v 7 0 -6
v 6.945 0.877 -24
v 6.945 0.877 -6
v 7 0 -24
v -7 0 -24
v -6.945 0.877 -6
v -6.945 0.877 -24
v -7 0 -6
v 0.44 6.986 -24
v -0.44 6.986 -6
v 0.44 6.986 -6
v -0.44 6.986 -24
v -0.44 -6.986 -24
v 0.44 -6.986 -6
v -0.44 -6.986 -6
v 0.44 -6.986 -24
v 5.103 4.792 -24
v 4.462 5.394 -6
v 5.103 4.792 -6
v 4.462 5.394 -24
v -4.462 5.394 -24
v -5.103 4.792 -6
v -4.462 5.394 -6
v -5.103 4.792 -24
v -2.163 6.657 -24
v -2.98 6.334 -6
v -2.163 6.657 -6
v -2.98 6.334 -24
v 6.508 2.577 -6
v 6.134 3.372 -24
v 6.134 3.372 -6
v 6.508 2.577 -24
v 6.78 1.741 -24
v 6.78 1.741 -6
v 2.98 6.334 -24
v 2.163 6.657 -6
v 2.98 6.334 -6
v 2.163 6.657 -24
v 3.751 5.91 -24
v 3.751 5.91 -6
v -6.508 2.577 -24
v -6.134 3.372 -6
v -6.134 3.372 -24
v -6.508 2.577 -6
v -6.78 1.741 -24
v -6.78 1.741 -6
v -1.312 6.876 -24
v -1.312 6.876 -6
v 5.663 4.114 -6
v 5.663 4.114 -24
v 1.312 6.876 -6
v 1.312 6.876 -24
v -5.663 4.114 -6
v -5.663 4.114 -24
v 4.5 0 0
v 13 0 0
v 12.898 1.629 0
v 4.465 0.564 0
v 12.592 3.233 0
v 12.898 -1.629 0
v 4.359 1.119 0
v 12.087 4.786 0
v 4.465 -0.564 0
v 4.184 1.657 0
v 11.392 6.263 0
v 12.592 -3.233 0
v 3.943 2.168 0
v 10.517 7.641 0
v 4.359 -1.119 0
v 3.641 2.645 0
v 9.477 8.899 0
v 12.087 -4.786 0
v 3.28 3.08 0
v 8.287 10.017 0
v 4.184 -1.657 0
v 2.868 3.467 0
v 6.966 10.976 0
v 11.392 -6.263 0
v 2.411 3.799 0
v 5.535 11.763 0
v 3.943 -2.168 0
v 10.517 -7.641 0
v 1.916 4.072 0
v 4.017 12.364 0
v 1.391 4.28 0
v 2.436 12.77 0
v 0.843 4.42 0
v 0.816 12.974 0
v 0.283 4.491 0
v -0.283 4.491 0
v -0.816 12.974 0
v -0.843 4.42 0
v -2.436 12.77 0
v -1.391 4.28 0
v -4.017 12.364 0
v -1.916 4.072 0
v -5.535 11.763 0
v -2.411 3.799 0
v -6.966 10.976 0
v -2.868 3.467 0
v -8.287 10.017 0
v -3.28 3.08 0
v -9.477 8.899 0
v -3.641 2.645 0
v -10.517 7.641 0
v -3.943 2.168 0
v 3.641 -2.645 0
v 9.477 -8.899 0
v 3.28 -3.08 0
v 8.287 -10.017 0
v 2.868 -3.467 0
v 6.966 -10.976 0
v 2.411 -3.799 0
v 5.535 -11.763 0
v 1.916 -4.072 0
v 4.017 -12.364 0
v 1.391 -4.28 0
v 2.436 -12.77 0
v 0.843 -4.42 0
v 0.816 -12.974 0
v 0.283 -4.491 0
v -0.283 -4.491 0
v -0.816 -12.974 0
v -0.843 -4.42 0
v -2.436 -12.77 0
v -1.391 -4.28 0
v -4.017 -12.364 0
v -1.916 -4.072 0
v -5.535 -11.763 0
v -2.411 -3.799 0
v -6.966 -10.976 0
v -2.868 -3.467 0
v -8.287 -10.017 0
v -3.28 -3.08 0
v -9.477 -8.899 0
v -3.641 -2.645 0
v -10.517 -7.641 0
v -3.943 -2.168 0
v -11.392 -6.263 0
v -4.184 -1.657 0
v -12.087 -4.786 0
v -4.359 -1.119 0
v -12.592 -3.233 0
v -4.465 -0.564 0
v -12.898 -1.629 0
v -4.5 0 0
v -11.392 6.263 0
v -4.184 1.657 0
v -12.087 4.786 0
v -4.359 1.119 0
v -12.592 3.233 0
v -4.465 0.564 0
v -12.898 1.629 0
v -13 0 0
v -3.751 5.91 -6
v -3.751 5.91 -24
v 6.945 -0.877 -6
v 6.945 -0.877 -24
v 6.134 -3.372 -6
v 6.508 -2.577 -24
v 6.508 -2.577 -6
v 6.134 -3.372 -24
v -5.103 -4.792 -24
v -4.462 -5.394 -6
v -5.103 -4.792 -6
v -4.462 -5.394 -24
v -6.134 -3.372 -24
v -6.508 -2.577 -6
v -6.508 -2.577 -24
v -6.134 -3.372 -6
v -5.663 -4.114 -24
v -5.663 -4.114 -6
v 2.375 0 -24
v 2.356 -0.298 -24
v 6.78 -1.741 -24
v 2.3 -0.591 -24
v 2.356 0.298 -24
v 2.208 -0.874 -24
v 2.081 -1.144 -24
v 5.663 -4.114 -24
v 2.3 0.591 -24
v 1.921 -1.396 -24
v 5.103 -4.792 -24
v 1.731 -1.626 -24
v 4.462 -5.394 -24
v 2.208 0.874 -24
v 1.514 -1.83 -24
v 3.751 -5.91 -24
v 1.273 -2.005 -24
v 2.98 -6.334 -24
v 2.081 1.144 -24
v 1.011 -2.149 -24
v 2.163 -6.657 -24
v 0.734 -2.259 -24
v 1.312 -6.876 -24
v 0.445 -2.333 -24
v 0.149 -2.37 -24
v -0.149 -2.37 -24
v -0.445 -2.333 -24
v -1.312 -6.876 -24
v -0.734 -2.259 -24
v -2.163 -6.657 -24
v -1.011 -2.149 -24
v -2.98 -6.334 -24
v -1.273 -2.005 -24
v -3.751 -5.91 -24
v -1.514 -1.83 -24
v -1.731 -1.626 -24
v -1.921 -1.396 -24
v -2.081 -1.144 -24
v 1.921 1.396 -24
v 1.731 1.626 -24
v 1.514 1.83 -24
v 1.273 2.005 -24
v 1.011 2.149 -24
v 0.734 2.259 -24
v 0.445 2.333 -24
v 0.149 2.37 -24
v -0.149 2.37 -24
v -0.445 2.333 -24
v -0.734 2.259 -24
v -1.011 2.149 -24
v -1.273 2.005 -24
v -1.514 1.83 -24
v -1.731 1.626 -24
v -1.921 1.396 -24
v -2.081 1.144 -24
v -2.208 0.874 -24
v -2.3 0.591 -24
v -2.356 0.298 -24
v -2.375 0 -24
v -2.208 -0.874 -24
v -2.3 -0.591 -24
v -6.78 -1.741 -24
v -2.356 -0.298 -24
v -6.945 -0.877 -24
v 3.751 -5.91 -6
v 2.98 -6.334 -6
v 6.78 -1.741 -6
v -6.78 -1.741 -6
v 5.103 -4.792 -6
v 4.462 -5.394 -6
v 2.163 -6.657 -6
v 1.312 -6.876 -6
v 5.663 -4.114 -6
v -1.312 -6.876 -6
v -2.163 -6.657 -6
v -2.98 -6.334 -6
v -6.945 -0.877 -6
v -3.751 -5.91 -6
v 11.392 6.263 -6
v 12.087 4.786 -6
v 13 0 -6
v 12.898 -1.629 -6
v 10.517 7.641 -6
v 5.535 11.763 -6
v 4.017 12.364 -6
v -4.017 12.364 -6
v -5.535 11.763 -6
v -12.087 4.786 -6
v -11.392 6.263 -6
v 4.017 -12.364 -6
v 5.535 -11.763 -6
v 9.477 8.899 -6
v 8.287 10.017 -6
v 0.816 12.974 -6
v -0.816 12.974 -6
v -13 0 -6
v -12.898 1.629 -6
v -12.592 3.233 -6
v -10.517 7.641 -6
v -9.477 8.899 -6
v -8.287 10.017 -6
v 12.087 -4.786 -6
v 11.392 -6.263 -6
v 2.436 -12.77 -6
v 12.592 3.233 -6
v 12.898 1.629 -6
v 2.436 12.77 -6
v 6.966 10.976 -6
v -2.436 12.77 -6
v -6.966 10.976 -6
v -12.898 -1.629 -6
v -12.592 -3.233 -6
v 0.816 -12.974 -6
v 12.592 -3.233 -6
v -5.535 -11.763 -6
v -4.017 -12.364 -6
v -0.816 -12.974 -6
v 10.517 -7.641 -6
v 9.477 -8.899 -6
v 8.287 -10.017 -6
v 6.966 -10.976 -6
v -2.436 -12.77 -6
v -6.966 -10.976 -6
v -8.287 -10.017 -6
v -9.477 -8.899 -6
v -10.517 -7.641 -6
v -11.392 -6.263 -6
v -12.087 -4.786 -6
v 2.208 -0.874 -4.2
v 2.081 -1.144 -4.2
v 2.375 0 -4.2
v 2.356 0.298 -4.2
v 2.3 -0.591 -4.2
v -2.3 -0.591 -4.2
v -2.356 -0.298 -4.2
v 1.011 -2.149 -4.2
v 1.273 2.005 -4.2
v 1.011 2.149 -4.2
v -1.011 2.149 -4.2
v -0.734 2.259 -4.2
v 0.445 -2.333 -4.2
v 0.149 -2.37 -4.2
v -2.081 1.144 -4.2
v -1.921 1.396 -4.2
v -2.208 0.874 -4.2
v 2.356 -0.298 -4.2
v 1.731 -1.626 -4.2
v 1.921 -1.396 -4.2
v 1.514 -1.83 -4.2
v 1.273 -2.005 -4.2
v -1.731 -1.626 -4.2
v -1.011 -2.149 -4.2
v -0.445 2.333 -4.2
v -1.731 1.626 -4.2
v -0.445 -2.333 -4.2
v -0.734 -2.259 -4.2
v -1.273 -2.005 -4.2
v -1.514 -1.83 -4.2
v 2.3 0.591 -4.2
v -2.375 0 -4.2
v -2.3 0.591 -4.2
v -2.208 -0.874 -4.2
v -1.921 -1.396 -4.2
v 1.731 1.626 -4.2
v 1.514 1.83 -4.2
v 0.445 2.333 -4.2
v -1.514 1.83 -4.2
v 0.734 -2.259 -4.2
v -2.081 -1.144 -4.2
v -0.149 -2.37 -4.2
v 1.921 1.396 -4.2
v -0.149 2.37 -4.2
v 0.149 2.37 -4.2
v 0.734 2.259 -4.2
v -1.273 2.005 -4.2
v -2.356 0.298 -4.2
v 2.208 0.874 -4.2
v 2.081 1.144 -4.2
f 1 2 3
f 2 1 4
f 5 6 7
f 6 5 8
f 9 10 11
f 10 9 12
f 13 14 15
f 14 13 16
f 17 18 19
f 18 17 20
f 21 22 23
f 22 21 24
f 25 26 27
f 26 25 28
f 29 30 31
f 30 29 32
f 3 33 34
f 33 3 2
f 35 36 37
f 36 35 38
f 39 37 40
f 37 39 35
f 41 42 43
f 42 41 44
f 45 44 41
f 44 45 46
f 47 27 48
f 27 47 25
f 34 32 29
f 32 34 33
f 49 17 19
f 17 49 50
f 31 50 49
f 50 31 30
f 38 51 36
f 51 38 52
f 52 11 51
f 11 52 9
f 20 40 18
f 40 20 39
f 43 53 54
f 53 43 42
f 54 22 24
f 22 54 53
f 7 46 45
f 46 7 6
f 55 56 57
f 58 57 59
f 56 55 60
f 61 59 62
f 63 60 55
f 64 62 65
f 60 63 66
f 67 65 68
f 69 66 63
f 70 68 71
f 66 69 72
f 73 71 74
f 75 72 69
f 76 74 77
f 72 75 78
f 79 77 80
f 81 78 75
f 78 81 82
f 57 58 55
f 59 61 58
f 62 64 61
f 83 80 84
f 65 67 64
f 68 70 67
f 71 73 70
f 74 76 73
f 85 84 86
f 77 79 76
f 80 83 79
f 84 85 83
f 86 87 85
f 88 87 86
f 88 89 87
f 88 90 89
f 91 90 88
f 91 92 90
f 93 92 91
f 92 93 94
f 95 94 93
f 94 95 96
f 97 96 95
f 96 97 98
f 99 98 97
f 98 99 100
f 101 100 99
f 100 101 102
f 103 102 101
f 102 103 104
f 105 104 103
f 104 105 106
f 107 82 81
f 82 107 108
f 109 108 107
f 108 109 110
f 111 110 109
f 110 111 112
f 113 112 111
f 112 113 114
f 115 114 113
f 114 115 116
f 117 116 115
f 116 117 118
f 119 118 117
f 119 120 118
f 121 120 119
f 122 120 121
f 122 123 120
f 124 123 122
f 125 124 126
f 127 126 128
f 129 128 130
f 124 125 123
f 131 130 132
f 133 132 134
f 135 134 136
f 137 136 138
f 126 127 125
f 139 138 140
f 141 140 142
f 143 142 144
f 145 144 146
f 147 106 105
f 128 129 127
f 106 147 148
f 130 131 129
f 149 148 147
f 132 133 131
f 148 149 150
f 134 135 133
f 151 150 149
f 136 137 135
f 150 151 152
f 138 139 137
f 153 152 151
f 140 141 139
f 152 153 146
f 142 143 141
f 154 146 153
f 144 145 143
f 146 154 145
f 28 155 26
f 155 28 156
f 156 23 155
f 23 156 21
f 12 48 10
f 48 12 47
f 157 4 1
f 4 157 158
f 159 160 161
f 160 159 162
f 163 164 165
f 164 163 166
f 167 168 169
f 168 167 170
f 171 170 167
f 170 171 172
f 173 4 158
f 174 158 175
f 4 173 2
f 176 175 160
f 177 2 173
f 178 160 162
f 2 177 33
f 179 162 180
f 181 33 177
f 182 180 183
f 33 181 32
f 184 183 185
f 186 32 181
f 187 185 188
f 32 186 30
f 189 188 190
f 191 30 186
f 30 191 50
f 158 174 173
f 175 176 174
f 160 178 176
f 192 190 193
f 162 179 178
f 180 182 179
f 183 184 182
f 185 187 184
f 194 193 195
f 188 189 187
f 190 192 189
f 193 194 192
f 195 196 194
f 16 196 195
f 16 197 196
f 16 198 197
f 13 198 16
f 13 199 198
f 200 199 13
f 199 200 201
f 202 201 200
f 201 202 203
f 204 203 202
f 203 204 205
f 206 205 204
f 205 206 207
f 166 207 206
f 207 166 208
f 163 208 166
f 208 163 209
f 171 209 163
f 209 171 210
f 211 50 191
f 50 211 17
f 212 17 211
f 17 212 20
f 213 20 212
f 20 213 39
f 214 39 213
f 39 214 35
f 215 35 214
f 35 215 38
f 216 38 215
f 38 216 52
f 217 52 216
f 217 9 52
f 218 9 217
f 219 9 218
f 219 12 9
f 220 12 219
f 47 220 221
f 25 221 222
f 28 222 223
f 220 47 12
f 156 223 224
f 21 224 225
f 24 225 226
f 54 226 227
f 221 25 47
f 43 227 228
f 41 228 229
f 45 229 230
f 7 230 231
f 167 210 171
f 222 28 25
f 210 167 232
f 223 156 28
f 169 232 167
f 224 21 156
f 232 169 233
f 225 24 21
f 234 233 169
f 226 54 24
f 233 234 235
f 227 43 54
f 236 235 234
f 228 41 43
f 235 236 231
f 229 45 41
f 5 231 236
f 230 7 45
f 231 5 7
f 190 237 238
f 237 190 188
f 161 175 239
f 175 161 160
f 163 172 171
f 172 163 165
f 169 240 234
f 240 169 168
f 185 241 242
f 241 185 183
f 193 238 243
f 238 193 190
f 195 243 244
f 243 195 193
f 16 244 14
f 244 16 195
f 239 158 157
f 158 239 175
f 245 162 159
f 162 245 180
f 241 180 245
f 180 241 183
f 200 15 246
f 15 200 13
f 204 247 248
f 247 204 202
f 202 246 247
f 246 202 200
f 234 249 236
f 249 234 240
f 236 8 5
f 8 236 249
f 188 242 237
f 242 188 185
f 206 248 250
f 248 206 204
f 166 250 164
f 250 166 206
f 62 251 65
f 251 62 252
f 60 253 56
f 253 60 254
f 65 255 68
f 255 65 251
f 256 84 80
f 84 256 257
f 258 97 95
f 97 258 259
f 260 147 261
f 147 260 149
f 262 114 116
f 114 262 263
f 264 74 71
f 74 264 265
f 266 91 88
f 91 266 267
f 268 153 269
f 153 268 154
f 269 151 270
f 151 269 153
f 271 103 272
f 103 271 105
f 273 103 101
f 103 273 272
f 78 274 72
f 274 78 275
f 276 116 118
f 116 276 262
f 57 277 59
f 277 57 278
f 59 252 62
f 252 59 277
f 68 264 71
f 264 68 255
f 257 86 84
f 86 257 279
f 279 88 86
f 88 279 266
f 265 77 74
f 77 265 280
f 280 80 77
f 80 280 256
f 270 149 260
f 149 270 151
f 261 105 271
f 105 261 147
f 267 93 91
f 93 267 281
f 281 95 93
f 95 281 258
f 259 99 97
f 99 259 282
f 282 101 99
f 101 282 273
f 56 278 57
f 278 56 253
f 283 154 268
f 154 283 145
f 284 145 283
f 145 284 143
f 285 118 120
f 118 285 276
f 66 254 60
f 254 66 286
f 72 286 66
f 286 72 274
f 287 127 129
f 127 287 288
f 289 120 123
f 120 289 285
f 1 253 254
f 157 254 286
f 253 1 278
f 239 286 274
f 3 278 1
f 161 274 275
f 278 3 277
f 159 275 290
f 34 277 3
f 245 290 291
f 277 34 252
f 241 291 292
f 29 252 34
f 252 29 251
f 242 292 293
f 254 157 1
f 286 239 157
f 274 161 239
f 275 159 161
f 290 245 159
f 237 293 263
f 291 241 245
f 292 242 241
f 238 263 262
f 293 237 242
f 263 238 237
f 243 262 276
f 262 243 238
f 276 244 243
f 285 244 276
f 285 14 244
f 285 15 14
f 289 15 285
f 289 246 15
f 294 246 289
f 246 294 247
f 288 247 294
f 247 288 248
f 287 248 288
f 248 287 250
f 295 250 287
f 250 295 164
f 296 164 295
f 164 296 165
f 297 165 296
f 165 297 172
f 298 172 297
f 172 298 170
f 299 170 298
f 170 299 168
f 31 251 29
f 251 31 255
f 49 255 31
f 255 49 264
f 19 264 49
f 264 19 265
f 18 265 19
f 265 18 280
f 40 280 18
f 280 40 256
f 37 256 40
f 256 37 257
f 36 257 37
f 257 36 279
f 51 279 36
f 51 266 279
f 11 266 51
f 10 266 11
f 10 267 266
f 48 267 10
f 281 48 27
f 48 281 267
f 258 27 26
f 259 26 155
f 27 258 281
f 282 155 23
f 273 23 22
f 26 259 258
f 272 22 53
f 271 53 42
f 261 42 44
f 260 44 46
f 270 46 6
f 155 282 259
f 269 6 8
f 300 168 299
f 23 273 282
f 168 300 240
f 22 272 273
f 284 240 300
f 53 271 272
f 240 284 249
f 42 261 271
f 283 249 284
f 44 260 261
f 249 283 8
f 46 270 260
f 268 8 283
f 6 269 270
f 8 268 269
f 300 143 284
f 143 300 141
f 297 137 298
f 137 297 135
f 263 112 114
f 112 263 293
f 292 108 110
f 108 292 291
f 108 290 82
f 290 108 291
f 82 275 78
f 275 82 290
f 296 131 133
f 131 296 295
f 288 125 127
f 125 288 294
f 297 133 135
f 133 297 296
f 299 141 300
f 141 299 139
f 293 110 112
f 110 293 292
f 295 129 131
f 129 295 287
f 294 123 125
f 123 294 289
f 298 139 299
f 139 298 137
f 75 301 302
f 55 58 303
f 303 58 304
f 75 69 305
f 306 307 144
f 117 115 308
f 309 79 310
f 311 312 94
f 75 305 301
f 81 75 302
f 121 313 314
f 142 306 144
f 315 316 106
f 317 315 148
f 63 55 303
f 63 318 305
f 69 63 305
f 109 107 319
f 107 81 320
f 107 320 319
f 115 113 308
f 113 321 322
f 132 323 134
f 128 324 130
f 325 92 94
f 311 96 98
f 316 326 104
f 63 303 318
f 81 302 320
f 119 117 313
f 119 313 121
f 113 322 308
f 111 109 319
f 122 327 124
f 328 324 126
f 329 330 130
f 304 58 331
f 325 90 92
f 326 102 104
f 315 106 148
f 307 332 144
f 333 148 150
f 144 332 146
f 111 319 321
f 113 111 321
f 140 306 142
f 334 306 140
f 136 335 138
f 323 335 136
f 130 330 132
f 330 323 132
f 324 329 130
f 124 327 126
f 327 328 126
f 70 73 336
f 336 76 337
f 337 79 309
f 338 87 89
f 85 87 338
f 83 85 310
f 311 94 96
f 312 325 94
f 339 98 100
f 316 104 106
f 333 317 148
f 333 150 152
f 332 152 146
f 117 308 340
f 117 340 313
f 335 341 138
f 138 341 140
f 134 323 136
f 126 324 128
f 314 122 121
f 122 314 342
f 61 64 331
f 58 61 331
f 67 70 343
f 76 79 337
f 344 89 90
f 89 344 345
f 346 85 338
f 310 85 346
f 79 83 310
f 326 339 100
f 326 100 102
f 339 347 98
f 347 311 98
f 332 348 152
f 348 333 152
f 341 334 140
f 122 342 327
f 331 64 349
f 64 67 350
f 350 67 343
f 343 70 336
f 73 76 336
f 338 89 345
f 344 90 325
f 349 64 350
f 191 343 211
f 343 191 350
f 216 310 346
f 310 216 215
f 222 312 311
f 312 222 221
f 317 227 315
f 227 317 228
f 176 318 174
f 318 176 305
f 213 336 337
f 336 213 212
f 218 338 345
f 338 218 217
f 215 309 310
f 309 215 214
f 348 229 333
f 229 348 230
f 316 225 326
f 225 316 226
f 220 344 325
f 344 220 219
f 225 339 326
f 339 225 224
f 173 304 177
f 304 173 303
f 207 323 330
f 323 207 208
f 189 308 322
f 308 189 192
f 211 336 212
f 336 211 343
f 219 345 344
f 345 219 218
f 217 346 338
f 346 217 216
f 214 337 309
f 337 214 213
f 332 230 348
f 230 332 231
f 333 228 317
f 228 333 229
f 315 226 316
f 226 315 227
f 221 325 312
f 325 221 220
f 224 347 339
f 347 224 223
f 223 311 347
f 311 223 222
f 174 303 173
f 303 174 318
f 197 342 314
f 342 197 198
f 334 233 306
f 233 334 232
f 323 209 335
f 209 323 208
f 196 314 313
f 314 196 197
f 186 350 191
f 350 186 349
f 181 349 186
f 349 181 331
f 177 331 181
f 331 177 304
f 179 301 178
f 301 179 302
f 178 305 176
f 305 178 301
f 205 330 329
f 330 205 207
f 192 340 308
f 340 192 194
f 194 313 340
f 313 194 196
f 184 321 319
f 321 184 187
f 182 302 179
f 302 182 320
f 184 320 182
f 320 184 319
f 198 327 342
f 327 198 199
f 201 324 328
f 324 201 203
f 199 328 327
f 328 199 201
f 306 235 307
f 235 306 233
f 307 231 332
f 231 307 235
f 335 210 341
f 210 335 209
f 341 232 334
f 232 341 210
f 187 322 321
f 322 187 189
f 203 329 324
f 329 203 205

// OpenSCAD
$fn = 50;


difference() {
	union() {
		translate(v = [0, 0, -24.0000000000]) {
			cylinder(h = 24, r = 7.0000000000);
		}
		translate(v = [0, 0, -6.0000000000]) {
			cylinder(h = 6, r = 13.0000000000);
		}
	}
	union() {
		translate(v = [0, 0, 0]) {
			rotate(a = [0, 0, 0]) {
				difference() {
					union() {
						#translate(v = [0, 0, -24.0000000000]) {
							cylinder(h = 24, r = 2.2500000000);
						}
						#translate(v = [0, 0, -4.2000000000]) {
							cylinder(h = 4.2000000000, r = 7.0000000000, r1 = 2.3750000000, r2 = 4.5000000000);
						}
						#translate(v = [0, 0, -24.0000000000]) {
							cylinder(h = 24, r = 2.3750000000);
						}
						#translate(v = [0, 0, -24.0000000000]) {
							cylinder(h = 24, r = 2.2500000000);
						}
					}
					union();
				}
			}
		}
	}
}
